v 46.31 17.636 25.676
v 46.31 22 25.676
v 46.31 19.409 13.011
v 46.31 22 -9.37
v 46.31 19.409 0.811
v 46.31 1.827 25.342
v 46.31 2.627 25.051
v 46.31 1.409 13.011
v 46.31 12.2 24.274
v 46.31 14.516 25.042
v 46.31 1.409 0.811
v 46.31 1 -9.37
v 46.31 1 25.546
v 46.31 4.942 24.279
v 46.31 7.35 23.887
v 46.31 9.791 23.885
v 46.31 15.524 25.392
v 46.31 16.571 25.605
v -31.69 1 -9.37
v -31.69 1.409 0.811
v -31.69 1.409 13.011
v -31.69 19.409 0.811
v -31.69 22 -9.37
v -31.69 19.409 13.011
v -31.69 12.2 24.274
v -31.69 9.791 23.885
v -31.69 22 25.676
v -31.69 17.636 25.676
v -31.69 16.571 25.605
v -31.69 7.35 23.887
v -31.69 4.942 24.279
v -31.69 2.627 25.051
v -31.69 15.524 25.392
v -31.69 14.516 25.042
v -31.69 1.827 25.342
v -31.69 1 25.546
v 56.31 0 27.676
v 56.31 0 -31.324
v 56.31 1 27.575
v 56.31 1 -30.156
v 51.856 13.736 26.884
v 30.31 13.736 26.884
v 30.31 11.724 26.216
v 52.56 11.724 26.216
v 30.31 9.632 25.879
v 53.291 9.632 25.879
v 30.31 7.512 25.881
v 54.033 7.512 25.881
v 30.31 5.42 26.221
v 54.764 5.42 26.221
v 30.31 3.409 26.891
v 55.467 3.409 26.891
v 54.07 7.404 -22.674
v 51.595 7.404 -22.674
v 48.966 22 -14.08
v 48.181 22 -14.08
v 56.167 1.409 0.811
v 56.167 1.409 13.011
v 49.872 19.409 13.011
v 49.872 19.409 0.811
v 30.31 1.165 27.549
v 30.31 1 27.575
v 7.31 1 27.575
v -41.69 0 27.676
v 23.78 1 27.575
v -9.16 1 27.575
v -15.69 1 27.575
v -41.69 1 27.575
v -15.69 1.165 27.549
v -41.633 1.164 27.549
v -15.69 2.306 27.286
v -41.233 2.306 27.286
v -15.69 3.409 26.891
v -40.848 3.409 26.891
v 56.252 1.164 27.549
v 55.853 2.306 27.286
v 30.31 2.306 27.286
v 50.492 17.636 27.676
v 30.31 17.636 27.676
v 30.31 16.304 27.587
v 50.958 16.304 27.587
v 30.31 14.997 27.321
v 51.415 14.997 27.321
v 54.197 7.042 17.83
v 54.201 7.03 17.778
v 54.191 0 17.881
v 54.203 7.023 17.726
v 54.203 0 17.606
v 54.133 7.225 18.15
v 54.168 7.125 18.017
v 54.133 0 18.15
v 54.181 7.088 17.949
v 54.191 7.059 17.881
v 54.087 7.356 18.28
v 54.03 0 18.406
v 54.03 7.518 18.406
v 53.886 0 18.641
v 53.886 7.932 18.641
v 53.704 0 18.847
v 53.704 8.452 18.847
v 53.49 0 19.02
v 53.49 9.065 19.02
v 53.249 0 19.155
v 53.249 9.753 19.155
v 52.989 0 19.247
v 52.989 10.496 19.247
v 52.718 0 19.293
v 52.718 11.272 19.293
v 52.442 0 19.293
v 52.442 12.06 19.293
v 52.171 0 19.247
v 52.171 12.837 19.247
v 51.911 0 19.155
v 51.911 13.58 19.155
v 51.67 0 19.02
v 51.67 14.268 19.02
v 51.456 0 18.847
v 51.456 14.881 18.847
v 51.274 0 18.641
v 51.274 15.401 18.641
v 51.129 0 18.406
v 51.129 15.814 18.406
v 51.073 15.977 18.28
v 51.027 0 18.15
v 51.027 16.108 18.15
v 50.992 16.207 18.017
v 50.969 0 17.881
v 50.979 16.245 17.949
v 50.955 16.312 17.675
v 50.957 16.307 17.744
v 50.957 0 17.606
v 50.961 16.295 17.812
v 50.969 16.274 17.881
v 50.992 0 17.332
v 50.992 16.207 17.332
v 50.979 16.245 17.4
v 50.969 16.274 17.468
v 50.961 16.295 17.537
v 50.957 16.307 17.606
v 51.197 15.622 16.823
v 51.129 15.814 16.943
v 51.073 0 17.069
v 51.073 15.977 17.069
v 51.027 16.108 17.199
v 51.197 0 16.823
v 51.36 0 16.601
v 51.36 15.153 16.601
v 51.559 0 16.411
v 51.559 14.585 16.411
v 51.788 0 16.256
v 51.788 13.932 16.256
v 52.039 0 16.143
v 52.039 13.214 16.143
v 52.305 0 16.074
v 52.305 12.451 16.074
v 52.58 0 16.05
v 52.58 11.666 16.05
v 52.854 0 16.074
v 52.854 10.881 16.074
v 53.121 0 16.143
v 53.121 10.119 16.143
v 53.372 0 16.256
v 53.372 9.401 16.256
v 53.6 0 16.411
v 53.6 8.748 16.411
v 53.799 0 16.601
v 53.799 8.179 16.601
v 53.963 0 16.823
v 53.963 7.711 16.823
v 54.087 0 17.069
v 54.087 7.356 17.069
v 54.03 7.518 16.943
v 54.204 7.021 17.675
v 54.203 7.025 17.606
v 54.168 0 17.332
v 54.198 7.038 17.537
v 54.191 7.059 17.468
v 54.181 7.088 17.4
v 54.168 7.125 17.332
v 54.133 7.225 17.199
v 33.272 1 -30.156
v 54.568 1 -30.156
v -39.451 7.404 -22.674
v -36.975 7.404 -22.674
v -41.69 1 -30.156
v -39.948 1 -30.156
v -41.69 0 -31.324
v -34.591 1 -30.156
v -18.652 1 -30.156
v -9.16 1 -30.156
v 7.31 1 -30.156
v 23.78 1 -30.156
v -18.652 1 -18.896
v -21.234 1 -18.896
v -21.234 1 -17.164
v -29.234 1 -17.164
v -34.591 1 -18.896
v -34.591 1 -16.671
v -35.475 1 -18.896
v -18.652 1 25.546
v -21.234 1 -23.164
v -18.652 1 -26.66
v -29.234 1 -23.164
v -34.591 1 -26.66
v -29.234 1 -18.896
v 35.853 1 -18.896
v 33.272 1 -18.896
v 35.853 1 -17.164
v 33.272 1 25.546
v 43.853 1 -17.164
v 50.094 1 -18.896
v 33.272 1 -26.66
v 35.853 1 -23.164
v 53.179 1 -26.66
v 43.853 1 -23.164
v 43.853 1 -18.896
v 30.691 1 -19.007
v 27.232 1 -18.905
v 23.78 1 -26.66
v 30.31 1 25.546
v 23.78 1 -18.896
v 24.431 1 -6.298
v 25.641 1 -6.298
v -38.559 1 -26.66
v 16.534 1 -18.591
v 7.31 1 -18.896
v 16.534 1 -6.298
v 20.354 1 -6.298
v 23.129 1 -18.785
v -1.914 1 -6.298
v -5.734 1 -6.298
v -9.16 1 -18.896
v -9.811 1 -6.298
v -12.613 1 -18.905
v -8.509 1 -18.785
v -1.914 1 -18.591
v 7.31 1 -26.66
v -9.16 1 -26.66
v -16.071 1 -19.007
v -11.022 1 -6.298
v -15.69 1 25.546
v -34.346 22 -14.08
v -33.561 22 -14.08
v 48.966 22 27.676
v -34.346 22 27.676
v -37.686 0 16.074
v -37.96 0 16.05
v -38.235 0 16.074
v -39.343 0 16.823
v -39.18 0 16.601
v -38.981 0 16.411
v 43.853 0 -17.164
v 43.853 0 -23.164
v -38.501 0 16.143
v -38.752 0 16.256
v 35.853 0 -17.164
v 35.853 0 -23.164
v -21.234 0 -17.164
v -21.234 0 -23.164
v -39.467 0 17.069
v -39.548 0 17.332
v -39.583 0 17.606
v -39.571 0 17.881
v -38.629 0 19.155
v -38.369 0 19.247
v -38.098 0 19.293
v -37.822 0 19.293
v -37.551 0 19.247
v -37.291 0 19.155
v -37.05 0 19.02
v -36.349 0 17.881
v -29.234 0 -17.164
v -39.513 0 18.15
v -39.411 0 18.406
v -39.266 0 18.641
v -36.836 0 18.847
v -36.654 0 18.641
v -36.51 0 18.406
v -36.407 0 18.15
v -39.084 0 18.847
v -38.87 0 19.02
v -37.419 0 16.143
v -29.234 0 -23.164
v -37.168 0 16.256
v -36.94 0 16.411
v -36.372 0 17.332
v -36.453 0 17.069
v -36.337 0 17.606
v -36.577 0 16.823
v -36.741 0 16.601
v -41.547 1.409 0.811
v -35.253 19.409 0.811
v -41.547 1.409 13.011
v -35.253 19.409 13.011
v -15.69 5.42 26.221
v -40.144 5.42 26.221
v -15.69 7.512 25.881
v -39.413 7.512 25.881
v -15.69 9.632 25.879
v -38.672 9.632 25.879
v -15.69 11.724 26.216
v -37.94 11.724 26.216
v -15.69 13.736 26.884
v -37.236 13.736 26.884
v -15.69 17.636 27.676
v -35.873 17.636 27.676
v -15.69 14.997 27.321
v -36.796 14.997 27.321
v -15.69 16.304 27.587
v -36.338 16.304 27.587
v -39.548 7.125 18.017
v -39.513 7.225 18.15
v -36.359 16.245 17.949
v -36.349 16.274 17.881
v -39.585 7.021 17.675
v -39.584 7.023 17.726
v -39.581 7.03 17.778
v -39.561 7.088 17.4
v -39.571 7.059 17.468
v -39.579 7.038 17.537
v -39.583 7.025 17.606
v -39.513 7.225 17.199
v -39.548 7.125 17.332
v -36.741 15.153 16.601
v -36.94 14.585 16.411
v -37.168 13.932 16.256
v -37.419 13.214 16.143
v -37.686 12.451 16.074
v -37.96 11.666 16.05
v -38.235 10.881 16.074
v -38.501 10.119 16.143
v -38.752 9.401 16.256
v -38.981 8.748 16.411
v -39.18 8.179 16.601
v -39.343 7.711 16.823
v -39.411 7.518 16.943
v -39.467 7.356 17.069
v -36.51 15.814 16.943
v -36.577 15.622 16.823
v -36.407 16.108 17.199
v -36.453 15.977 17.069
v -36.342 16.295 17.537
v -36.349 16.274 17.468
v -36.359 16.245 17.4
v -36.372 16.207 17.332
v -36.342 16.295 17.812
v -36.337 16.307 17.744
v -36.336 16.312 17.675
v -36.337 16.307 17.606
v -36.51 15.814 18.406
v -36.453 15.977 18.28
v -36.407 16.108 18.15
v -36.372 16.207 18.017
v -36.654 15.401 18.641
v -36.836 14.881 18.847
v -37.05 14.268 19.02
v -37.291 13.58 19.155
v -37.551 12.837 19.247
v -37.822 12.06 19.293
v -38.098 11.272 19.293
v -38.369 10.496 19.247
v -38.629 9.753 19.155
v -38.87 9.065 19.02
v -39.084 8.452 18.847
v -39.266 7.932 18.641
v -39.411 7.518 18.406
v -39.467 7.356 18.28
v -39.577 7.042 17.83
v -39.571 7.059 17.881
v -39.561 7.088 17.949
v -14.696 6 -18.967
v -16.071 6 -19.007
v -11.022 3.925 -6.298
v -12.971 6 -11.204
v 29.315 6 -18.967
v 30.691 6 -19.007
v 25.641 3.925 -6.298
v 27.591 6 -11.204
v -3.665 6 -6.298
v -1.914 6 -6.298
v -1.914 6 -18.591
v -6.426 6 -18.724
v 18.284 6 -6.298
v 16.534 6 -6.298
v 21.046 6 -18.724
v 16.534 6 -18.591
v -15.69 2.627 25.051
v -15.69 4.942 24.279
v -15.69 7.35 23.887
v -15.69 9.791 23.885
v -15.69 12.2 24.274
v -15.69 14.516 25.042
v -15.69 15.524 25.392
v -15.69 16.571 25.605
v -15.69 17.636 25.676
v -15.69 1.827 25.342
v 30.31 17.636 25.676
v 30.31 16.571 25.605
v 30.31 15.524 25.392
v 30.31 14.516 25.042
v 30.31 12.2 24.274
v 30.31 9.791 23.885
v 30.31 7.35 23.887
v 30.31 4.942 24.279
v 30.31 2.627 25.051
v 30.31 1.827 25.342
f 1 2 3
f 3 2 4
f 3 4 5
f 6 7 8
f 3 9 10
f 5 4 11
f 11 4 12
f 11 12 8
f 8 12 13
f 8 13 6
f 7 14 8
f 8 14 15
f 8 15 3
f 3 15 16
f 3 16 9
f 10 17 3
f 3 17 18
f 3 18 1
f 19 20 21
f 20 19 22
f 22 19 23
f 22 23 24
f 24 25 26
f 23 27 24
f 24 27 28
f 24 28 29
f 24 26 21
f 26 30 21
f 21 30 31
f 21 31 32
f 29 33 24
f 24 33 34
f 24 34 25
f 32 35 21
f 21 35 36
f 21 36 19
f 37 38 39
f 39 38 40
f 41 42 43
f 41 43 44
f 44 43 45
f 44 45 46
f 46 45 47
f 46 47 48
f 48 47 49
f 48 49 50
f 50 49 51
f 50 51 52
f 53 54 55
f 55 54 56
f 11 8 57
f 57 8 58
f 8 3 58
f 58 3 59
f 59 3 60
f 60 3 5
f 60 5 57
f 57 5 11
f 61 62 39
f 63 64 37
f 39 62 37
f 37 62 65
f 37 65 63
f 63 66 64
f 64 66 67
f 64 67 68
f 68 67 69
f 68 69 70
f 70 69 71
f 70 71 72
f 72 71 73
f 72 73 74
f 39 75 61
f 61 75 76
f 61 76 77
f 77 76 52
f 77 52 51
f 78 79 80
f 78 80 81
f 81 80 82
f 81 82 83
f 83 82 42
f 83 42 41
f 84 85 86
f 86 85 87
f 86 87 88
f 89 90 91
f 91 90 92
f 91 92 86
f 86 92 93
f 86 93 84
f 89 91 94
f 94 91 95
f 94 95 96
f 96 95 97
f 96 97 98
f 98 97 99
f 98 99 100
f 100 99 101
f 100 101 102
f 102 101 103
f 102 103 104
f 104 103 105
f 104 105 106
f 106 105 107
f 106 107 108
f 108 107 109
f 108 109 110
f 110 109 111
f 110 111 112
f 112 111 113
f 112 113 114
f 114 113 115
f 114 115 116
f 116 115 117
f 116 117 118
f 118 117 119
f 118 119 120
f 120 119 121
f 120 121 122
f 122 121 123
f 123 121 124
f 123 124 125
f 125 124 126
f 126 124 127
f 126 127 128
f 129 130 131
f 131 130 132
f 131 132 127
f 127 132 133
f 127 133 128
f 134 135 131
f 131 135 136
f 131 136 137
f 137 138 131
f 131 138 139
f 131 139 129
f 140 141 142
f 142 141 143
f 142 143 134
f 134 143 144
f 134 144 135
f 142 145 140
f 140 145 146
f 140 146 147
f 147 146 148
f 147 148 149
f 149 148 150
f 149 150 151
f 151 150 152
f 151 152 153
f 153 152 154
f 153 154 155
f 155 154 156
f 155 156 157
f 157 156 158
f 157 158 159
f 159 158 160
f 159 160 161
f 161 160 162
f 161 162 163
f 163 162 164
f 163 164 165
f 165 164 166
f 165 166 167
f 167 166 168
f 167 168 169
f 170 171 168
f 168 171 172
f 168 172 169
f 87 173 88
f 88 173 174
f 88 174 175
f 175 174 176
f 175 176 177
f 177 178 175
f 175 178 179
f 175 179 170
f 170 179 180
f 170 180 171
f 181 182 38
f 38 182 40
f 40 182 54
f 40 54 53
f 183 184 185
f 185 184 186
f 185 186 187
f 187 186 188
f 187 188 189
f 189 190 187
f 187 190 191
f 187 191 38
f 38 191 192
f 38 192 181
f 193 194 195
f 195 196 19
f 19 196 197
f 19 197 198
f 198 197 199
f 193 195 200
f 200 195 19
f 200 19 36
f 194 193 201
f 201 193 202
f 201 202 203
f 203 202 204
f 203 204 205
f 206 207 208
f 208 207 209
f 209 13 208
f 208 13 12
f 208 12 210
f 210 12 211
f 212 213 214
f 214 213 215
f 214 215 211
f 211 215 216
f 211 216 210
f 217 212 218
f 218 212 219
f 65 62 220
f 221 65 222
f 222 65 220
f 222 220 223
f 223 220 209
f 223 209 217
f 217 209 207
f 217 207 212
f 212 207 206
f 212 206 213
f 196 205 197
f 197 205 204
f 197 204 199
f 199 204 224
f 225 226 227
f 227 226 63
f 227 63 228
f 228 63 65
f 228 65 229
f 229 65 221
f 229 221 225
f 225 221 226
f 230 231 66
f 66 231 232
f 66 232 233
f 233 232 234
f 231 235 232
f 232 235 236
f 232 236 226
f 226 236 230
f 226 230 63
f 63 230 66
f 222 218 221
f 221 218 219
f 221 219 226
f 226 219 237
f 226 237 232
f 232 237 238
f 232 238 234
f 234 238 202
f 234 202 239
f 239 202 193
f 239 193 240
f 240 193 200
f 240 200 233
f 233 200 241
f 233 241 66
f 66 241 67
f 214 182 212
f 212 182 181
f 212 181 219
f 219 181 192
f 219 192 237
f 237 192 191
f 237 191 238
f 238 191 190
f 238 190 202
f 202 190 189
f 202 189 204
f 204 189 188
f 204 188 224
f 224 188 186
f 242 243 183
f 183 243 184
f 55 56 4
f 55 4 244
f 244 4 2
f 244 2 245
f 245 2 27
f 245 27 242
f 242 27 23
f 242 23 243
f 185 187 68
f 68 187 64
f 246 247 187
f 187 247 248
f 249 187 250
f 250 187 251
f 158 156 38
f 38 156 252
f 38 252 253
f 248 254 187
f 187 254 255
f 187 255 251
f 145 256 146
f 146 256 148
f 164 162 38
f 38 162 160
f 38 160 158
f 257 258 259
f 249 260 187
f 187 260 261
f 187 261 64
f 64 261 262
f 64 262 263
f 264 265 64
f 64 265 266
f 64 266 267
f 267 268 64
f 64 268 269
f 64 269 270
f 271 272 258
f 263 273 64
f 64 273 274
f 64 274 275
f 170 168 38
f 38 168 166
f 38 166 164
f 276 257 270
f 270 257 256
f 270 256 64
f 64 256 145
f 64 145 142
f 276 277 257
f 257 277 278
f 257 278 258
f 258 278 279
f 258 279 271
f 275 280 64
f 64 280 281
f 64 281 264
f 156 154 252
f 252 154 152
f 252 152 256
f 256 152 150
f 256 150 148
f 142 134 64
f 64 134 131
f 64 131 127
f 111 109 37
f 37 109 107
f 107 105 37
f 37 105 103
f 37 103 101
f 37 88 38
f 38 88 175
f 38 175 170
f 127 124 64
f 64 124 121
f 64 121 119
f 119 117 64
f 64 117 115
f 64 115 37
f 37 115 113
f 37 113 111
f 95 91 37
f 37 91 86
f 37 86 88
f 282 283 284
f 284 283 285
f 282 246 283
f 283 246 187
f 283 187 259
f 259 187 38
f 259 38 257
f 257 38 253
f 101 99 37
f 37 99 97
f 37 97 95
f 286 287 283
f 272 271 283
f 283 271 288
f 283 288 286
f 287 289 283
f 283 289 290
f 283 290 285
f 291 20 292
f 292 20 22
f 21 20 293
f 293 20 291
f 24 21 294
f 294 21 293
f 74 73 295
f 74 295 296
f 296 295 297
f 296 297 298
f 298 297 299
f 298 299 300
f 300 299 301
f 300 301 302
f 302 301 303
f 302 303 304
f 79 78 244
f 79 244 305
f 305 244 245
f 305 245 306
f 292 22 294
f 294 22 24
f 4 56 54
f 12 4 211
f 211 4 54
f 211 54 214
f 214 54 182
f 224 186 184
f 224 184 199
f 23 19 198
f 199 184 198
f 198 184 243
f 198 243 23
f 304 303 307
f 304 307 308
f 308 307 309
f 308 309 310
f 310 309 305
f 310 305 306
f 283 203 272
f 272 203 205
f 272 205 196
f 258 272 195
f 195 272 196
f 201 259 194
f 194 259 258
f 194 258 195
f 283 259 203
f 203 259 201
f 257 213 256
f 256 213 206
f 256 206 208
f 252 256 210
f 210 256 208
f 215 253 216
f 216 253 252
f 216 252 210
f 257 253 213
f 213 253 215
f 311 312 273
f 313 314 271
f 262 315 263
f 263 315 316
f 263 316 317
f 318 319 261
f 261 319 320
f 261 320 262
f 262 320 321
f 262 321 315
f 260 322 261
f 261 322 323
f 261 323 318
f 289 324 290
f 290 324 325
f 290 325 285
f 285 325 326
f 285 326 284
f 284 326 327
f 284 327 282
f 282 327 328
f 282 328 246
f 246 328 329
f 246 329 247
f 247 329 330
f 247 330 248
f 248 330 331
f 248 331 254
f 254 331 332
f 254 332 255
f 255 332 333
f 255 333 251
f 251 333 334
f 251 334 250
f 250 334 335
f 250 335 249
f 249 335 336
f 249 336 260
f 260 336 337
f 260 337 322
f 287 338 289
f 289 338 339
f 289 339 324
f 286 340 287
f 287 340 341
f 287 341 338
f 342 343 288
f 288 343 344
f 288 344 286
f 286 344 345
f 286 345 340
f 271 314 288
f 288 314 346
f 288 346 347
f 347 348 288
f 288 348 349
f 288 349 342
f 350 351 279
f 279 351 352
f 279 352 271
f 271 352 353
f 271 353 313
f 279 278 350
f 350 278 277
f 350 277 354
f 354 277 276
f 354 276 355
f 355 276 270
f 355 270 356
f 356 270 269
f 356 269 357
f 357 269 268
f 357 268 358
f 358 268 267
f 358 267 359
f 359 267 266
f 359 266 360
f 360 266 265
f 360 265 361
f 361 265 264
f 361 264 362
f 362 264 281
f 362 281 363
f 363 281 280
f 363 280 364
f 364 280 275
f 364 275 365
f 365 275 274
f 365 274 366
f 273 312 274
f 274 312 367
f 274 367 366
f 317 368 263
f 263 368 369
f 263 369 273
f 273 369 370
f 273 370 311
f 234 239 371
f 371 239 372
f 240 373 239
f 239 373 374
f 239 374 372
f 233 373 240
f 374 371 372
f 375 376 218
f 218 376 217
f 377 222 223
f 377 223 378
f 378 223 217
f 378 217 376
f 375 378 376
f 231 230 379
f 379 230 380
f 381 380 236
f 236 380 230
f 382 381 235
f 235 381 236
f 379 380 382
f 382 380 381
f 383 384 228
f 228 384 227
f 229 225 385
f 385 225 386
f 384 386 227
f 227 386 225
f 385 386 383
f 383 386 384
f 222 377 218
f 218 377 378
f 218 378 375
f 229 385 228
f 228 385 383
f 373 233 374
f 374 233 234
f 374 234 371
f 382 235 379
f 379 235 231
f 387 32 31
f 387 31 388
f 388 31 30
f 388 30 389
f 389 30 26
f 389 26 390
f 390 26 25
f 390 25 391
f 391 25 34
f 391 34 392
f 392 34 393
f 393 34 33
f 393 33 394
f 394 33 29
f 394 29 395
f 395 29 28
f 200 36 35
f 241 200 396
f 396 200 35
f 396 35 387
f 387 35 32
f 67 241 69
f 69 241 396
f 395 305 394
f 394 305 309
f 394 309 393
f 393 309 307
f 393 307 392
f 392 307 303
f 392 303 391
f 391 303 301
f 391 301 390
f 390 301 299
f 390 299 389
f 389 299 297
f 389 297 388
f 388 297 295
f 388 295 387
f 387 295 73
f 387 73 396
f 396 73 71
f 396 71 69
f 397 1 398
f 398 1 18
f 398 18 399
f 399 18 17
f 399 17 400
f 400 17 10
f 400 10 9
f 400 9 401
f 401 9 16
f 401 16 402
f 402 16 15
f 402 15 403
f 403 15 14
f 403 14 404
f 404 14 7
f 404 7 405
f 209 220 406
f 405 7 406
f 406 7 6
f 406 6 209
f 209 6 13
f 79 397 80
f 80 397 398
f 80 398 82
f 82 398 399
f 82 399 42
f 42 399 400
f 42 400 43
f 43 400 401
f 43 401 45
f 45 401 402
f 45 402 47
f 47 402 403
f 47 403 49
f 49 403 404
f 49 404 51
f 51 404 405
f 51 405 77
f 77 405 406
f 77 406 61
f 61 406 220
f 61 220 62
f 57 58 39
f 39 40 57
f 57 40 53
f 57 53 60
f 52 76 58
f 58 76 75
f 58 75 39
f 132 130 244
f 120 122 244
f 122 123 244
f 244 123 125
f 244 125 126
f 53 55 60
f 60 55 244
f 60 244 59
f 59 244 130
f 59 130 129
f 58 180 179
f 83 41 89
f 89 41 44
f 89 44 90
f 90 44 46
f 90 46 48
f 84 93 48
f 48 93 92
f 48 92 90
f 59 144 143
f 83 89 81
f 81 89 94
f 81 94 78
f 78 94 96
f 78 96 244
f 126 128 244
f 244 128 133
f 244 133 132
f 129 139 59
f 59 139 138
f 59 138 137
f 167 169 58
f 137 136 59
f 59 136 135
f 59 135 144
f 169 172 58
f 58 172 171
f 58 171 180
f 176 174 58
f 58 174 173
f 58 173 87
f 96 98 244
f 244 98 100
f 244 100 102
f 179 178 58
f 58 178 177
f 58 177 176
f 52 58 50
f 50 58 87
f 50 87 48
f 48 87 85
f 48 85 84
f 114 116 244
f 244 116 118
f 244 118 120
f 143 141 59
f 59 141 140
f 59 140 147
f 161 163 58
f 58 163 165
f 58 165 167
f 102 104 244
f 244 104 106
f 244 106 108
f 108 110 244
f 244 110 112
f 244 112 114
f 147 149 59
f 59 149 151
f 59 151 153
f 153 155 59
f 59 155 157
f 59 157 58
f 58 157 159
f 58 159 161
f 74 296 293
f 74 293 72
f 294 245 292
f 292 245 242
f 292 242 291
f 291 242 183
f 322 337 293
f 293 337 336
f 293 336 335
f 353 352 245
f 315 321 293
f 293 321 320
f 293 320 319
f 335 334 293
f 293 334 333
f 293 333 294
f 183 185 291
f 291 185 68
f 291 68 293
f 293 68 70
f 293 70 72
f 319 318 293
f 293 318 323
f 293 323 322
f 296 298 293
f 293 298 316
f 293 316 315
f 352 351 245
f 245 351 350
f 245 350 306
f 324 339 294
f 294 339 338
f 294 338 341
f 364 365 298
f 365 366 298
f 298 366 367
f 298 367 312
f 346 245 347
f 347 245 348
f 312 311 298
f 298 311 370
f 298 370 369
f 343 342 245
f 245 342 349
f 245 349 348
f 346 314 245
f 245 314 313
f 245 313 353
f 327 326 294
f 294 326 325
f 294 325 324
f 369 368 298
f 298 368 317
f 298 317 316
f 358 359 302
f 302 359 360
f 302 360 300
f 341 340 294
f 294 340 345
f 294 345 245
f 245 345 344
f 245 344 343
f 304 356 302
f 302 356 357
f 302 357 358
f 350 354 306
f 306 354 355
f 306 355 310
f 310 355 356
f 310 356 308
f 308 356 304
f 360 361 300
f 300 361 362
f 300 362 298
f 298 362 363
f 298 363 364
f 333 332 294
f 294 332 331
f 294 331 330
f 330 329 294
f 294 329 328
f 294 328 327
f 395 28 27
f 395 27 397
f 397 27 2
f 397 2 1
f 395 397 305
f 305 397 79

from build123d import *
from OCP.BRepFilletAPI import BRepFilletAPI_MakeChamfer
from build123d.topology import SkipClean

# Parameters (mm, degrees)
CROQUIS1_W              = 98
CROQUIS1_H              = 60
SALIENTE_EXTRUIR1_DEPTH = 1
CROQUIS2_W              = 12.2
CROQUIS2_H              = 18
SALIENTE_EXTRUIR2_DEPTH = 10
SALIENTE_EXTRUIR3_START = -88
CROQUIS2_3_W            = 12.2
CROQUIS2_3_H            = 18
SALIENTE_EXTRUIR3_DEPTH = 10
CORTAR_EXTRUIR1_DEPTH   = 115
CORTAR_EXTRUIR2_DEPTH   = 115
REDONDEO1_R             = 10
REDONDEO2_START         = -43
REDONDEO2_DEPTH         = 100
CROQUIS4_R              = 1.624451876
CROQUIS4_W              = 8
CROQUIS4_H              = 6
CORTAR_EXTRUIR3_DEPTH   = 41
SALIENTE_EXTRUIR4_DEPTH = 5
CHAFL_N1_SIZE           = 5
CHAFL_N1_SIZE_2         = 2.020131129
CORTAR_EXTRUIR4_DEPTH   = 101
SALIENTE_EXTRUIR5_DEPTH = 26
SALIENTE_EXTRUIR6_START = -72
SALIENTE_EXTRUIR6_DEPTH = 26
CORTAR_EXTRUIR5_DEPTH   = 72
SALIENTE_EXTRUIR7_START = -88
CROQUIS7_5_W            = 2
CROQUIS7_5_H            = 4.363894299
SALIENTE_EXTRUIR7_DEPTH = 78


with BuildPart() as part:
    # Croquis1 → Saliente-Extruir1 (new body)
    with BuildSketch(Plane(origin=(0, 0, 0), x_dir=(1, 0, 0), z_dir=(0, 1, 0))):
        with Locations((7.309859155, 2.323943662)):
            Rectangle(CROQUIS1_W, CROQUIS1_H)
    extrude(amount=SALIENTE_EXTRUIR1_DEPTH)

    # Croquis2 → Saliente-Extruir2 (add)
    with BuildSketch(Plane.ZY.offset(41.690140845)):
        with BuildLine():
            Line((-22.673615367, 7.404257104), (-31.02059504, 1))
            Line((-31.02059504, 1), (27.676056338, 1))
            Line((27.676056338, 1), (27.676056338, 1.85662729))
            ThreePointArc((27.676056338, 1.85662729), (25.837285222, 8.581073785), (27.676056338, 15.305520281))
            Line((27.676056338, 15.305520281), (27.676056338, 22))
            Line((27.676056338, 22), (-14.080479284, 22))
            Line((-14.080479284, 22), (-22.673615367, 7.404257104))
        make_face()
        with Locations((6.911108061, 10.408932756)):
            Rectangle(CROQUIS2_W, CROQUIS2_H, mode=Mode.SUBTRACT)
    extrude(amount=-SALIENTE_EXTRUIR2_DEPTH)

    # Croquis2<3> → Saliente-Extruir3 (add)
    with BuildSketch(Plane.ZY.offset(41.690140845).offset(SALIENTE_EXTRUIR3_START)):
        with BuildLine():
            Line((-22.673615367, 7.404257104), (-31.02059504, 1))
            Line((-31.02059504, 1), (27.676056338, 1))
            Line((27.676056338, 1), (27.676056338, 1.85662729))
            ThreePointArc((27.676056338, 1.85662729), (25.837285222, 8.581073785), (27.676056338, 15.305520281))
            Line((27.676056338, 15.305520281), (27.676056338, 22))
            Line((27.676056338, 22), (-14.080479284, 22))
            Line((-14.080479284, 22), (-22.673615367, 7.404257104))
        make_face()
        with Locations((6.911108061, 10.408932756)):
            Rectangle(CROQUIS2_3_W, CROQUIS2_3_H, mode=Mode.SUBTRACT)
    extrude(amount=-SALIENTE_EXTRUIR3_DEPTH)

    # Croquis2<4> → Cortar-Extruir1 (cut)
    with BuildSketch(Plane.ZY.offset(41.690140845)):
        Polygon((-32.323943662, 1), (-32.323943662, 0), (-31.02059504, 1), align=None)
    extrude(amount=-CORTAR_EXTRUIR1_DEPTH, mode=Mode.SUBTRACT)

    # Croquis3 → Cortar-Extruir2 (cut)
    with BuildSketch(Plane(origin=(0, 1, 0), x_dir=(1, 0, 0), z_dir=(0, 1, 0))):
        Polygon((-40.291413083, 31.02059504), (-31.690140845, 9.370184618), (-31.690140845, 31.02059504), align=None)
        Polygon((54.911131393, 31.02059504), (46.309859155, 31.02059504), (46.309859155, 9.370184618), align=None)
    extrude(amount=CORTAR_EXTRUIR2_DEPTH, mode=Mode.SUBTRACT)

    # Redondeo1
    # the kernel refuses this fillet: 10 mm, written as the material it takes off along each edge
    # the kernel refuses this fillet: 10 mm, written as the material it takes off along each edge
    with BuildSketch(Plane(origin=(-46.33170907, 1.85662729, 27.676056338), x_dir=(0, 0.8924889538837264, -0.4510692487806408), z_dir=(1, 0, 0))) as redondeo1_2_piece_1:
        with BuildLine():
            CenterArc((2.398228131, -9.978308132), REDONDEO1_R, 93.774545272, 20.149469447)
            Line((-1.657019348, -0.837467477), (0, 0))
            ThreePointArc((0, 0), (0.869961056, -0.028666121), (1.739922113, 0))
        make_face()
    extrude(amount=19.283136451, mode=Mode.SUBTRACT)
    # the kernel refuses this fillet: 10 mm, written as the material it takes off along each edge
    # the kernel refuses this fillet: 10 mm, written as the material it takes off along each edge
    with BuildSketch(Plane(origin=(41.66829093, 1.85662729, 27.676056338), x_dir=(0, -1, 0), z_dir=(1, 0, 0))) as redondeo1_4_piece_1:
        with BuildLine():
            CenterArc((2.360515838, 9.987296748), REDONDEO1_R, 246.962238713, 20.149469447)
            ThreePointArc((-1.552861266, 0.78482536), (-0.763500227, 0.417996876), (0, 0))
            Line((0, 0), (1.85662729, 0))
        make_face()
    extrude(amount=19.283136451, mode=Mode.SUBTRACT)
    # the kernel refuses this fillet: 10 mm, written as the material it takes off along each edge
    with BuildSketch(Plane(origin=(52.565538288, 1, 27.676056338), x_dir=(0, -1, 0), z_dir=(-1, 0, 0))) as redondeo1_5_piece_1_section:
        with BuildLine():
            CenterArc((10, -4.358898944), REDONDEO1_R, 154.158067237, 25.841932763)
            Line((0, -4.358898944), (0, 0))
            Line((0, 0), (1, 0))
        make_face()
    redondeo1_5_piece_1 = extrude(amount=90.511358267, mode=Mode.PRIVATE)
    redondeo1_5_piece_1 = redondeo1_5_piece_1 - Plane(origin=(52.565538288, -0.503888548, 17.68875959), x_dir=(0, 0.050388854784132256, 0.998729674793707), z_dir=(-1, 0, 0)) * Cylinder(10, 199, mode=Mode.PRIVATE)
    add(redondeo1_5_piece_1, mode=Mode.SUBTRACT)

    # Redondeo2: read off the stored shape, not the designer's step
    # Redondeo2 outline → Redondeo2 (cut)
    with SkipClean():  # the faces are left unmerged after this step: merging them gives an invalid solid
        with BuildSketch(Plane.YZ.offset(REDONDEO2_START)):
            with BuildLine():
                ThreePointArc((13.735621222, 26.883999693), (15.646059665, 27.476041888), (17.636105701, 27.676056338))
                Line((17.636105701, 27.676056338), (15.305520281, 27.676056338))
                ThreePointArc((15.305520281, 27.676056338), (14.533759116, 27.253887965), (13.735621222, 26.883999693))
            make_face()
        extrude(amount=REDONDEO2_DEPTH, mode=Mode.SUBTRACT)
    add(part.part.scale(1), mode=Mode.REPLACE)  # the faces are merged on a copy

    # Croquis4 → Cortar-Extruir3 (cut)
    with BuildSketch(Plane.XZ):
        with Locations(Location((-37.960140845, 17.674595399, 0), (0, 0, 270))):
            Circle(CROQUIS4_R)
        with Locations(Location((52.579859155, 17.674595399, 0), (0, 0, 270))):
            Circle(CROQUIS4_R)
        with Locations((-25.233647173, -20.164268386)):
            Rectangle(CROQUIS4_W, CROQUIS4_H)
        with Locations((39.853365482, -20.164268386)):
            Rectangle(CROQUIS4_W, CROQUIS4_H)
    extrude(amount=-CORTAR_EXTRUIR3_DEPTH, mode=Mode.SUBTRACT)

    # Croquis5 → Saliente-Extruir4 (add)
    with BuildSketch(Plane(origin=(0, 1, 0), x_dir=(1, 0, 0), z_dir=(0, 1, 0))):
        Polygon((-1.913897366, 6.29786762), (-1.913897366, 18.591303013), (-8.5088233, 18.784914739), (-5.73410883, 6.29786762), align=None)
        Polygon((-9.811245677, 6.29786762), (-12.612731972, 18.905395977), (-16.070794085, 19.006916659), (-11.021744735, 6.29786762), align=None)
        Polygon((16.533615676, 18.591303013), (16.533615676, 6.29786762), (20.35382714, 6.29786762), (23.12854161, 18.784914739), align=None)
        Polygon((27.232450282, 18.905395977), (24.430963987, 6.29786762), (25.641463045, 6.29786762), (30.690512395, 19.006916659), align=None)
    extrude(amount=SALIENTE_EXTRUIR4_DEPTH)

    # Chaflán1
    chafl_n1_edges_1 = [part.edges().sort_by_distance(p)[0] for p in [
        (25.831707134, 6, -12.601631799),
    ]]
    chafl_n1_side_1 = [part.faces().sort_by_distance(p)[0] for p in [
        (25.831707134, 5.959597377, -12.601631799),
    ]]
    chafl_n1_edges_2 = [part.edges().sort_by_distance(p)[0] for p in [
        (21.741184375, 6, -12.541391179),
    ]]
    chafl_n1_side_2 = [part.faces().sort_by_distance(p)[0] for p in [
        (21.741184375, 5.959597377, -12.541391179),
    ]]
    chafl_n1_edges_3 = [part.edges().sort_by_distance(p)[0] for p in [
        (-11.211988825, 6, -12.601631799),
    ]]
    chafl_n1_side_3 = [part.faces().sort_by_distance(p)[0] for p in [
        (-11.211988825, 5.959597377, -12.601631799),
    ]]
    chafl_n1_edges_4 = [part.edges().sort_by_distance(p)[0] for p in [
        (-7.121466065, 6, -12.541391179),
    ]]
    chafl_n1_side_4 = [part.faces().sort_by_distance(p)[0] for p in [
        (-7.121466065, 5.959597377, -12.541391179),
    ]]
    chafl_n1 = BRepFilletAPI_MakeChamfer(part.part.solid().wrapped)
    for e in chafl_n1_edges_1:
        chafl_n1.Add(CHAFL_N1_SIZE - 0.0001, CHAFL_N1_SIZE_2 - 0.0001, e.wrapped, chafl_n1_side_1[0].wrapped)
    for e in chafl_n1_edges_2:
        chafl_n1.Add(CHAFL_N1_SIZE - 0.0001, CHAFL_N1_SIZE_2 - 0.0001, e.wrapped, chafl_n1_side_2[0].wrapped)
    for e in chafl_n1_edges_3:
        chafl_n1.Add(CHAFL_N1_SIZE - 0.0001, CHAFL_N1_SIZE_2 - 0.0001, e.wrapped, chafl_n1_side_3[0].wrapped)
    for e in chafl_n1_edges_4:
        chafl_n1.Add(CHAFL_N1_SIZE - 0.0001, CHAFL_N1_SIZE_2 - 0.0001, e.wrapped, chafl_n1_side_4[0].wrapped)
    add(Compound.cast(chafl_n1.Shape()), mode=Mode.REPLACE)  # a hair under: the kernel refuses the full size

    # Croquis6 → Cortar-Extruir4 (cut)
    with BuildSketch(Plane.ZY.offset(41.690140845)):
        Polygon((-22.673615367, 7.404257104), (-31.323943662, 0), (-32.323943662, 0), align=None)
    extrude(amount=-CORTAR_EXTRUIR4_DEPTH, mode=Mode.SUBTRACT)

    # Croquis7 → Saliente-Extruir5 (add)
    with BuildSketch(Plane.ZY.offset(41.690140845)):
        with BuildLine():
            Line((27.676056338, 17.636105701), (25.676056338, 17.636105701))
            ThreePointArc((25.676056338, 17.636105701), (25.516044778, 16.044068872), (25.042411022, 14.515718118))
            ThreePointArc((25.042411022, 14.515718118), (23.837288952, 8.570418777), (25.0507367, 2.626813135))
            ThreePointArc((25.0507367, 2.626813135), (25.473403095, 1.339837436), (25.67287484, 0))
            Line((25.67287484, 0), (27.676056338, 0))
            ThreePointArc((27.676056338, 0), (27.433909837, 1.739333838), (26.891230978, 3.409488556))
            ThreePointArc((26.891230978, 3.409488556), (25.837288462, 8.571819356), (26.883999693, 13.735621222))
            ThreePointArc((26.883999693, 13.735621222), (27.476041888, 15.646059665), (27.676056338, 17.636105701))
        make_face()
    extrude(amount=-SALIENTE_EXTRUIR5_DEPTH)

    # Croquis7<4> → Saliente-Extruir6 (add)
    with BuildSketch(Plane.ZY.offset(41.690140845).offset(SALIENTE_EXTRUIR6_START)):
        with BuildLine():
            Line((27.676056338, 17.636105701), (25.676056338, 17.636105701))
            ThreePointArc((25.676056338, 17.636105701), (25.516044778, 16.044068872), (25.042411022, 14.515718118))
            ThreePointArc((25.042411022, 14.515718118), (23.837288952, 8.570418777), (25.0507367, 2.626813135))
            ThreePointArc((25.0507367, 2.626813135), (25.473403095, 1.339837436), (25.67287484, 0))
            Line((25.67287484, 0), (27.676056338, 0))
            ThreePointArc((27.676056338, 0), (27.433909837, 1.739333838), (26.891230978, 3.409488556))
            ThreePointArc((26.891230978, 3.409488556), (25.837288462, 8.571819356), (26.883999693, 13.735621222))
            ThreePointArc((26.883999693, 13.735621222), (27.476041888, 15.646059665), (27.676056338, 17.636105701))
        make_face()
    extrude(amount=-SALIENTE_EXTRUIR6_DEPTH)

    # Croquis8 → Cortar-Extruir5 (cut)
    with BuildSketch(Plane.XY.offset(27.676056338)):
        Polygon((-43.181006637, 23.333071417), (-41.690140845, 1), (-35.872500086, 17.636105701), (-41.690140845, 17.636105701), (-41.690140845, 22), (-34.346447667, 22), align=None)
        Polygon((-41.690140845, 17.636105701), (-35.872500086, 17.636105701), (-34.346447667, 22), (-41.690140845, 22), align=None)
        Polygon((57.800724947, 23.333071417), (56.309859155, 1), (48.966165977, 22), align=None)
    extrude(amount=-CORTAR_EXTRUIR5_DEPTH, mode=Mode.SUBTRACT)

    # Croquis7<5> → Saliente-Extruir7 (add)
    with BuildSketch(Plane.ZY.offset(41.690140845).offset(SALIENTE_EXTRUIR7_START)):
        with Locations((26.676056338, 19.818052851)):
            Rectangle(CROQUIS7_5_W, CROQUIS7_5_H)
    extrude(amount=SALIENTE_EXTRUIR7_DEPTH)


solid = part.part
